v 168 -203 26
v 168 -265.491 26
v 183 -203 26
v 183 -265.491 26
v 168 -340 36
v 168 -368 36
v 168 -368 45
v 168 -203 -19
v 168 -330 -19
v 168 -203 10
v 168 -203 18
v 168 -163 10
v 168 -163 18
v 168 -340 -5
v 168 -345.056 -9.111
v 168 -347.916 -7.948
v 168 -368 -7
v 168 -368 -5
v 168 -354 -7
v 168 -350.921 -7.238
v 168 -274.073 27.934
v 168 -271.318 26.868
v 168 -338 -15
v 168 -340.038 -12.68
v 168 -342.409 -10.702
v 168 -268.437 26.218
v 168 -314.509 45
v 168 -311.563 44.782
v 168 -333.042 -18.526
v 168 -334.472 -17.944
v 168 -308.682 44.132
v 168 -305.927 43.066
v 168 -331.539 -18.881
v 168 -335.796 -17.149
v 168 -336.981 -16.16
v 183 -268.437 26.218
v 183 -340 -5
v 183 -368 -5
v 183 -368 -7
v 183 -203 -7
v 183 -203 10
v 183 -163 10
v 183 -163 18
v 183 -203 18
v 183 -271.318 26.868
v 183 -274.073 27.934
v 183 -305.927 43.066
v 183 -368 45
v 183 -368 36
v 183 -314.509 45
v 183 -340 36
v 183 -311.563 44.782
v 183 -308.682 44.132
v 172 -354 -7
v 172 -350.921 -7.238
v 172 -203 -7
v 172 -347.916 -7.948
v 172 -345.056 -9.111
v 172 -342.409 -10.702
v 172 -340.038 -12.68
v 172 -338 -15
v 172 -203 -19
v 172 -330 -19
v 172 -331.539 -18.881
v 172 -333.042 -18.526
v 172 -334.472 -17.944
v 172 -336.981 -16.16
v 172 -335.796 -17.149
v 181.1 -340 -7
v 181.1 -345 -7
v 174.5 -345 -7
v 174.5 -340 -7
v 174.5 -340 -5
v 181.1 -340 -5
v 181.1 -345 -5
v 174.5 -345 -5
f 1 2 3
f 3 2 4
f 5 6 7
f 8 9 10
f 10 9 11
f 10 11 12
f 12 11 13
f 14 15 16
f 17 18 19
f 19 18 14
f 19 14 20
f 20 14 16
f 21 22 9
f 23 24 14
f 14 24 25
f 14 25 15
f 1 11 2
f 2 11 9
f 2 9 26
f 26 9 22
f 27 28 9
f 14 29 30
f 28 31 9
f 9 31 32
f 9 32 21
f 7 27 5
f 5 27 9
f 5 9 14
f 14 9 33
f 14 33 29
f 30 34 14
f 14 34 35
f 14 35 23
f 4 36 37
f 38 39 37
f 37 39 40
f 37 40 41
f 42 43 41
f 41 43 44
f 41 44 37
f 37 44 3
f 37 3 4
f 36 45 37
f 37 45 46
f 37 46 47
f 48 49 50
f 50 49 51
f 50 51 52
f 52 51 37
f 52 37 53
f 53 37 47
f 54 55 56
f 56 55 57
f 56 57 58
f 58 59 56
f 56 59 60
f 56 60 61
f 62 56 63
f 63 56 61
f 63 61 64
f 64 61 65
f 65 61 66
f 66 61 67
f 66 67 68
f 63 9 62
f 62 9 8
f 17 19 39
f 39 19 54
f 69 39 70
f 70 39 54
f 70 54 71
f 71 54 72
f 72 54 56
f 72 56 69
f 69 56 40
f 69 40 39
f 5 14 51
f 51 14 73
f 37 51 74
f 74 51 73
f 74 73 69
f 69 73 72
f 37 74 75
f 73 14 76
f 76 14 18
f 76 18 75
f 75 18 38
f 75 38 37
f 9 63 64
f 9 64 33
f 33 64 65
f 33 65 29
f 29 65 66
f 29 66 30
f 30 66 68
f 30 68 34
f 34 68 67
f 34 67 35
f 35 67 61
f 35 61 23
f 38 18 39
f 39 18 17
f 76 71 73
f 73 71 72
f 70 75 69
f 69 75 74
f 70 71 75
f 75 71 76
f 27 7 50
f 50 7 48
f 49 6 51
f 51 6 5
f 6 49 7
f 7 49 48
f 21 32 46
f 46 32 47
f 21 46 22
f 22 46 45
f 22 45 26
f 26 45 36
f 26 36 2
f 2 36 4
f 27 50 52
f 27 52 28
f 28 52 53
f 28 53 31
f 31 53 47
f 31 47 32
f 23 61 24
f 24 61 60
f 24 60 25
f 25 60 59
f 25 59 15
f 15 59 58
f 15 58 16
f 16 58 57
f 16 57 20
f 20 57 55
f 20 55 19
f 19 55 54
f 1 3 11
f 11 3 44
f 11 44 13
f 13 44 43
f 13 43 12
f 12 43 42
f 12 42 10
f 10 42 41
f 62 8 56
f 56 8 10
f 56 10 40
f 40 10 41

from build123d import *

# Parameters (mm, degrees)
EXTRUDE_1_DEPTH        = 26
EXTRUDE_2_DEPTH        = 19
FILLET_1_R             = 10
SKETCH_5_W             = 161
SKETCH_5_H             = 6
CUT_EXTRUDE_1_DEPTH    = 52
SKETCH_1_5_W           = 11
SKETCH_1_5_H           = 340
EXTRUDE_4_DEPTH        = 7
SKETCH_6_W             = 1.9
SKETCH_6_H             = 2
SKETCH_6_W_2           = 6.6
EXTRUDE_5_DEPTH        = 28
SKETCH_6_3_W           = 6.6
SKETCH_6_3_H           = 2
CUT_EXTRUDE_2_DEPTH    = 5
FILLET_2_R             = 20
SKETCH_6_4_W           = 15
SKETCH_6_4_H           = 10
SKETCH_6_4_H_2         = 9
EXTRUDE_6_DEPTH        = 30
SKETCH_6_5_W           = 15
SKETCH_6_5_H           = 9
EXTRUDE_7_DEPTH        = 28
EXTRUDE_8_DEPTH        = 15
FILLET_3_R             = 20
FILLET_3_OF_MIRROR_2_R = 20
FILLET_4_R             = 20
SKETCH_11_W            = 20
SKETCH_11_H            = 20
CUT_EXTRUDE_3_DEPTH    = 617
SKETCH_10_W            = 20
SKETCH_10_H            = 10
CUT_EXTRUDE_4_DEPTH    = 617
SKETCH_12_W            = 7.5
SKETCH_12_H            = 20
SKETCH_12_W_2          = 0.5
SKETCH_12_W_3          = 16.5
SKETCH_12_W_4          = 12
CUT_EXTRUDE_6_DEPTH    = 37


with BuildPart() as part:
    # 스케치1 → 보스-돌출1 (new body)
    with BuildSketch(Plane.XY):
        Polygon((-168, 0), (168, 0), (183, 0), (183, -340), (168, -340), (168, -20), (-168, -20), (-168, -340), (-183, -340), (-183, 0), align=None)
    extrude(amount=EXTRUDE_1_DEPTH)

    # 스케치1<4> → 보스-돌출2 (add)
    with BuildSketch(Plane.XY):
        Polygon((172, 0), (168, 0), (168, -20), (168, -340), (172, -340), align=None)
        Polygon((-168, -20), (-168, 0), (-172, 0), (-172, -340), (-168, -340), align=None)
    extrude(amount=-EXTRUDE_2_DEPTH)

    # 필렛1
    fillet_1_edges = [part.edges().sort_by_distance(p)[0] for p in [
        (170, 0, -19),
        (170, -340, -19),
        (-170, -340, -19),
        (-170, 0, -19),
    ]]
    fillet(fillet_1_edges, radius=FILLET_1_R)

    # 스케치5 → 컷-돌출1 (cut)
    with BuildSketch(Plane(origin=(0, 0, 0), x_dir=(1, 0, 0), z_dir=(0, 1, 0))):
        with Locations((-87.5, -3)):
            Rectangle(SKETCH_5_W, SKETCH_5_H)
        with Locations((87.5, -3)):
            Rectangle(SKETCH_5_W, SKETCH_5_H)
    extrude(amount=-CUT_EXTRUDE_1_DEPTH, mode=Mode.SUBTRACT)

    # 스케치1<5> → 보스-돌출4 (add)
    with BuildSketch(Plane.XY):
        with Locations((177.5, -170)):
            Rectangle(SKETCH_1_5_W, SKETCH_1_5_H)
        with Locations((-177.5, -170)):
            Rectangle(SKETCH_1_5_W, SKETCH_1_5_H)
    extrude(amount=-EXTRUDE_4_DEPTH)

    # 스케치6 → 보스-돌출5 (add)
    with BuildSketch(Plane.XZ.offset(340)):
        with Locations((-182.05, -6)):
            Rectangle(SKETCH_6_W, SKETCH_6_H)
        with Locations((-177.8, -6)):
            Rectangle(SKETCH_6_W_2, SKETCH_6_H)
        Polygon((-174.5, -7), (-172, -7), (-168, -7), (-168, -5), (-174.5, -5), align=None)
    extrude_5 = extrude(amount=EXTRUDE_5_DEPTH)

    # 스케치6<3> → 컷-돌출2 (cut)
    with BuildSketch(Plane.XZ.offset(340)):
        with Locations((-177.8, -6)):
            Rectangle(SKETCH_6_3_W, SKETCH_6_3_H)
    cut_extrude_2 = extrude(amount=CUT_EXTRUDE_2_DEPTH, mode=Mode.SUBTRACT)

    # 필렛2
    # the kernel refuses this fillet: 20 mm, written as the material it adds along each edge
    with BuildSketch(Plane(origin=(-172, -340, -7), x_dir=(0, -1, 0), z_dir=(1, 0, 0))) as fillet_2_piece_1:
        with BuildLine():
            CenterArc((14, 20), FILLET_2_R, 216.869897646, 53.130102354)
            Line((-2, 8), (-3.6, 6.8))
            ThreePointArc((-3.6, 6.8), (-2, 2), (-2, 0))
            Line((-2, 0), (0, -2))
            Line((0, -2), (14, -2))
            Line((14, -2), (14, 0))
        make_face()
    extrude(amount=4)

    # 스케치6<4> → 보스-돌출6 (add)
    with BuildSketch(Plane.XZ.offset(340)):
        with Locations((-175.5, 31)):
            Rectangle(SKETCH_6_4_W, SKETCH_6_4_H)
        with Locations((-175.5, 40.5)):
            Rectangle(SKETCH_6_4_W, SKETCH_6_4_H_2)
    extrude_6 = extrude(amount=-EXTRUDE_6_DEPTH)

    # 스케치6<5> → 보스-돌출7 (add)
    with BuildSketch(Plane.XZ.offset(340)):
        with Locations((-175.5, 40.5)):
            Rectangle(SKETCH_6_5_W, SKETCH_6_5_H)
    extrude_7 = extrude(amount=EXTRUDE_7_DEPTH)

    # 스케치9 → 보스-돌출8 (add)
    with BuildSketch(Plane.ZY.offset(183)):
        Polygon((26, -310), (45, -310), (26, -270), align=None)
    extrude_8 = extrude(amount=-EXTRUDE_8_DEPTH)

    # 필렛3
    fillet_3_edges = [part.edges().sort_by_distance(p)[0] for p in [
        (-175.5, -310, 45),
        (-175.5, -270, 26),
    ]]
    fillet(fillet_3_edges, radius=FILLET_3_R)

    # 대칭 복사2: 보스-돌출5, 컷-돌출2, 보스-돌출6, 보스-돌출7, 보스-돌출8 across plane
    add(extrude_5.mirror(Plane(origin=(0, 0, 0), x_dir=(0, 0, 1), z_dir=(1, 0, 0))))
    add(cut_extrude_2.mirror(Plane(origin=(0, 0, 0), x_dir=(0, 0, 1), z_dir=(1, 0, 0))), mode=Mode.SUBTRACT)
    add(extrude_6.mirror(Plane(origin=(0, 0, 0), x_dir=(0, 0, 1), z_dir=(1, 0, 0))))
    add(extrude_7.mirror(Plane(origin=(0, 0, 0), x_dir=(0, 0, 1), z_dir=(1, 0, 0))))
    add(extrude_8.mirror(Plane(origin=(0, 0, 0), x_dir=(0, 0, 1), z_dir=(1, 0, 0))))

    # 필렛3 of 대칭 복사2
    fillet_3_of_mirror_2_edges = [part.edges().sort_by_distance(p)[0] for p in [
        (175.5, -310, 45),
        (175.5, -270, 26),
    ]]
    fillet(fillet_3_of_mirror_2_edges, radius=FILLET_3_OF_MIRROR_2_R)

    # 필렛4
    # the kernel refuses this fillet: 20 mm, written as the material it adds along each edge
    with BuildSketch(Plane(origin=(172, -340, -7), x_dir=(0, 0.24253562503633938, -0.9701425001453302), z_dir=(-1, 0, 0))) as fillet_4_piece_1:
        with BuildLine():
            CenterArc((16.007351252, 18.432707503), FILLET_4_R, 194.036243468, 53.130102354)
            Line((-3.395498751, 13.581995002), (-5.335783751, 13.096923752))
            Line((-5.335783751, 13.096923752), (-1.940285, -0.48507125))
            Line((-1.940285, -0.48507125), (0.48507125, -1.940285))
            ThreePointArc((0.48507125, -1.940285), (2.42535625, -1.45521375), (7.470097251, -1.84327075))
            Line((7.470097251, -1.84327075), (8.246211251, 0))
        make_face()
    extrude(amount=4)

    # 스케치11 → 컷-돌출3 (cut)
    with BuildSketch(Plane.ZY.offset(-168)):
        with BuildLine():
            ThreePointArc((45, -314.508610159), (44.510394688, -310.110371974), (43.065550087, -305.927473868))
            Line((43.065550087, -305.927473868), (27.934449913, -274.072526132))
            ThreePointArc((27.934449913, -274.072526132), (26.489605312, -269.889628026), (26, -265.491389841))
            Line((26, -265.491389841), (26, -20))
            Line((26, -20), (6, -20))
            Line((6, -20), (6, 0))
            Line((6, 0), (-7, 0))
            Line((-7, 0), (-7, -354))
            Line((-7, -354), (-7, -368))
            Line((-7, -368), (-5, -368))
            Line((-5, -368), (-5, -340))
            Line((-5, -340), (36, -340))
            Line((36, -340), (36, -368))
            Line((36, -368), (45, -368))
            Line((45, -368), (45, -314.508610159))
        make_face()
        with Locations((16, -10)):
            Rectangle(SKETCH_11_W, SKETCH_11_H)
        with BuildLine():
            Line((-7, -354), (-7, 0))
            Line((-7, 0), (-9, 0))
            ThreePointArc((-9, 0), (-16.071067812, -2.928932188), (-19, -10))
            Line((-19, -10), (-19, -330))
            ThreePointArc((-19, -330), (-17.94427191, -334.472135955), (-15, -338))
            ThreePointArc((-15, -338), (-9.11145618, -345.05572809), (-7, -354))
        make_face()
    extrude(amount=CUT_EXTRUDE_3_DEPTH, mode=Mode.SUBTRACT)

    # 스케치10 → 컷-돌출4 (cut)
    with BuildSketch(Plane(origin=(183, 0, 0), x_dir=(0, 0, -1), z_dir=(1, 0, 0))):
        with Locations((-16, -15)):
            Rectangle(SKETCH_10_W, SKETCH_10_H)
    extrude(amount=-CUT_EXTRUDE_4_DEPTH, mode=Mode.SUBTRACT)

    # 스케치12 → 컷-돌출6 (cut)
    with BuildSketch(Plane.ZY.offset(-168)):
        Polygon((18.5, -162.5), (18.5, -183), (26, -183), (26, -20), (6, -20), (6, -10), (26, -10), (26, 0), (-7, 0), (-7, -183), (9.5, -183), (9.5, -162.5), align=None)
        with Locations((22.25, -193)):
            Rectangle(SKETCH_12_W, SKETCH_12_H)
        with Locations((18.25, -193)):
            Rectangle(SKETCH_12_W_2, SKETCH_12_H)
        with Locations((9.75, -193)):
            Rectangle(SKETCH_12_W_2, SKETCH_12_H)
        Polygon((18, -163), (18, -183), (18.5, -183), (18.5, -162.5), (9.5, -162.5), (9.5, -183), (10, -183), (10, -163), align=None)
        with Locations((1.25, -193)):
            Rectangle(SKETCH_12_W_3, SKETCH_12_H)
        with BuildLine():
            Line((-19, -183), (-7, -183))
            Line((-7, -183), (-7, 0))
            Line((-7, 0), (-9, 0))
            ThreePointArc((-9, 0), (-16.071067812, -2.928932188), (-19, -10))
            Line((-19, -10), (-19, -183))
        make_face()
        with Locations((-13, -193)):
            Rectangle(SKETCH_12_W_4, SKETCH_12_H)
    extrude(amount=-CUT_EXTRUDE_6_DEPTH, mode=Mode.SUBTRACT)


solid = part.part
